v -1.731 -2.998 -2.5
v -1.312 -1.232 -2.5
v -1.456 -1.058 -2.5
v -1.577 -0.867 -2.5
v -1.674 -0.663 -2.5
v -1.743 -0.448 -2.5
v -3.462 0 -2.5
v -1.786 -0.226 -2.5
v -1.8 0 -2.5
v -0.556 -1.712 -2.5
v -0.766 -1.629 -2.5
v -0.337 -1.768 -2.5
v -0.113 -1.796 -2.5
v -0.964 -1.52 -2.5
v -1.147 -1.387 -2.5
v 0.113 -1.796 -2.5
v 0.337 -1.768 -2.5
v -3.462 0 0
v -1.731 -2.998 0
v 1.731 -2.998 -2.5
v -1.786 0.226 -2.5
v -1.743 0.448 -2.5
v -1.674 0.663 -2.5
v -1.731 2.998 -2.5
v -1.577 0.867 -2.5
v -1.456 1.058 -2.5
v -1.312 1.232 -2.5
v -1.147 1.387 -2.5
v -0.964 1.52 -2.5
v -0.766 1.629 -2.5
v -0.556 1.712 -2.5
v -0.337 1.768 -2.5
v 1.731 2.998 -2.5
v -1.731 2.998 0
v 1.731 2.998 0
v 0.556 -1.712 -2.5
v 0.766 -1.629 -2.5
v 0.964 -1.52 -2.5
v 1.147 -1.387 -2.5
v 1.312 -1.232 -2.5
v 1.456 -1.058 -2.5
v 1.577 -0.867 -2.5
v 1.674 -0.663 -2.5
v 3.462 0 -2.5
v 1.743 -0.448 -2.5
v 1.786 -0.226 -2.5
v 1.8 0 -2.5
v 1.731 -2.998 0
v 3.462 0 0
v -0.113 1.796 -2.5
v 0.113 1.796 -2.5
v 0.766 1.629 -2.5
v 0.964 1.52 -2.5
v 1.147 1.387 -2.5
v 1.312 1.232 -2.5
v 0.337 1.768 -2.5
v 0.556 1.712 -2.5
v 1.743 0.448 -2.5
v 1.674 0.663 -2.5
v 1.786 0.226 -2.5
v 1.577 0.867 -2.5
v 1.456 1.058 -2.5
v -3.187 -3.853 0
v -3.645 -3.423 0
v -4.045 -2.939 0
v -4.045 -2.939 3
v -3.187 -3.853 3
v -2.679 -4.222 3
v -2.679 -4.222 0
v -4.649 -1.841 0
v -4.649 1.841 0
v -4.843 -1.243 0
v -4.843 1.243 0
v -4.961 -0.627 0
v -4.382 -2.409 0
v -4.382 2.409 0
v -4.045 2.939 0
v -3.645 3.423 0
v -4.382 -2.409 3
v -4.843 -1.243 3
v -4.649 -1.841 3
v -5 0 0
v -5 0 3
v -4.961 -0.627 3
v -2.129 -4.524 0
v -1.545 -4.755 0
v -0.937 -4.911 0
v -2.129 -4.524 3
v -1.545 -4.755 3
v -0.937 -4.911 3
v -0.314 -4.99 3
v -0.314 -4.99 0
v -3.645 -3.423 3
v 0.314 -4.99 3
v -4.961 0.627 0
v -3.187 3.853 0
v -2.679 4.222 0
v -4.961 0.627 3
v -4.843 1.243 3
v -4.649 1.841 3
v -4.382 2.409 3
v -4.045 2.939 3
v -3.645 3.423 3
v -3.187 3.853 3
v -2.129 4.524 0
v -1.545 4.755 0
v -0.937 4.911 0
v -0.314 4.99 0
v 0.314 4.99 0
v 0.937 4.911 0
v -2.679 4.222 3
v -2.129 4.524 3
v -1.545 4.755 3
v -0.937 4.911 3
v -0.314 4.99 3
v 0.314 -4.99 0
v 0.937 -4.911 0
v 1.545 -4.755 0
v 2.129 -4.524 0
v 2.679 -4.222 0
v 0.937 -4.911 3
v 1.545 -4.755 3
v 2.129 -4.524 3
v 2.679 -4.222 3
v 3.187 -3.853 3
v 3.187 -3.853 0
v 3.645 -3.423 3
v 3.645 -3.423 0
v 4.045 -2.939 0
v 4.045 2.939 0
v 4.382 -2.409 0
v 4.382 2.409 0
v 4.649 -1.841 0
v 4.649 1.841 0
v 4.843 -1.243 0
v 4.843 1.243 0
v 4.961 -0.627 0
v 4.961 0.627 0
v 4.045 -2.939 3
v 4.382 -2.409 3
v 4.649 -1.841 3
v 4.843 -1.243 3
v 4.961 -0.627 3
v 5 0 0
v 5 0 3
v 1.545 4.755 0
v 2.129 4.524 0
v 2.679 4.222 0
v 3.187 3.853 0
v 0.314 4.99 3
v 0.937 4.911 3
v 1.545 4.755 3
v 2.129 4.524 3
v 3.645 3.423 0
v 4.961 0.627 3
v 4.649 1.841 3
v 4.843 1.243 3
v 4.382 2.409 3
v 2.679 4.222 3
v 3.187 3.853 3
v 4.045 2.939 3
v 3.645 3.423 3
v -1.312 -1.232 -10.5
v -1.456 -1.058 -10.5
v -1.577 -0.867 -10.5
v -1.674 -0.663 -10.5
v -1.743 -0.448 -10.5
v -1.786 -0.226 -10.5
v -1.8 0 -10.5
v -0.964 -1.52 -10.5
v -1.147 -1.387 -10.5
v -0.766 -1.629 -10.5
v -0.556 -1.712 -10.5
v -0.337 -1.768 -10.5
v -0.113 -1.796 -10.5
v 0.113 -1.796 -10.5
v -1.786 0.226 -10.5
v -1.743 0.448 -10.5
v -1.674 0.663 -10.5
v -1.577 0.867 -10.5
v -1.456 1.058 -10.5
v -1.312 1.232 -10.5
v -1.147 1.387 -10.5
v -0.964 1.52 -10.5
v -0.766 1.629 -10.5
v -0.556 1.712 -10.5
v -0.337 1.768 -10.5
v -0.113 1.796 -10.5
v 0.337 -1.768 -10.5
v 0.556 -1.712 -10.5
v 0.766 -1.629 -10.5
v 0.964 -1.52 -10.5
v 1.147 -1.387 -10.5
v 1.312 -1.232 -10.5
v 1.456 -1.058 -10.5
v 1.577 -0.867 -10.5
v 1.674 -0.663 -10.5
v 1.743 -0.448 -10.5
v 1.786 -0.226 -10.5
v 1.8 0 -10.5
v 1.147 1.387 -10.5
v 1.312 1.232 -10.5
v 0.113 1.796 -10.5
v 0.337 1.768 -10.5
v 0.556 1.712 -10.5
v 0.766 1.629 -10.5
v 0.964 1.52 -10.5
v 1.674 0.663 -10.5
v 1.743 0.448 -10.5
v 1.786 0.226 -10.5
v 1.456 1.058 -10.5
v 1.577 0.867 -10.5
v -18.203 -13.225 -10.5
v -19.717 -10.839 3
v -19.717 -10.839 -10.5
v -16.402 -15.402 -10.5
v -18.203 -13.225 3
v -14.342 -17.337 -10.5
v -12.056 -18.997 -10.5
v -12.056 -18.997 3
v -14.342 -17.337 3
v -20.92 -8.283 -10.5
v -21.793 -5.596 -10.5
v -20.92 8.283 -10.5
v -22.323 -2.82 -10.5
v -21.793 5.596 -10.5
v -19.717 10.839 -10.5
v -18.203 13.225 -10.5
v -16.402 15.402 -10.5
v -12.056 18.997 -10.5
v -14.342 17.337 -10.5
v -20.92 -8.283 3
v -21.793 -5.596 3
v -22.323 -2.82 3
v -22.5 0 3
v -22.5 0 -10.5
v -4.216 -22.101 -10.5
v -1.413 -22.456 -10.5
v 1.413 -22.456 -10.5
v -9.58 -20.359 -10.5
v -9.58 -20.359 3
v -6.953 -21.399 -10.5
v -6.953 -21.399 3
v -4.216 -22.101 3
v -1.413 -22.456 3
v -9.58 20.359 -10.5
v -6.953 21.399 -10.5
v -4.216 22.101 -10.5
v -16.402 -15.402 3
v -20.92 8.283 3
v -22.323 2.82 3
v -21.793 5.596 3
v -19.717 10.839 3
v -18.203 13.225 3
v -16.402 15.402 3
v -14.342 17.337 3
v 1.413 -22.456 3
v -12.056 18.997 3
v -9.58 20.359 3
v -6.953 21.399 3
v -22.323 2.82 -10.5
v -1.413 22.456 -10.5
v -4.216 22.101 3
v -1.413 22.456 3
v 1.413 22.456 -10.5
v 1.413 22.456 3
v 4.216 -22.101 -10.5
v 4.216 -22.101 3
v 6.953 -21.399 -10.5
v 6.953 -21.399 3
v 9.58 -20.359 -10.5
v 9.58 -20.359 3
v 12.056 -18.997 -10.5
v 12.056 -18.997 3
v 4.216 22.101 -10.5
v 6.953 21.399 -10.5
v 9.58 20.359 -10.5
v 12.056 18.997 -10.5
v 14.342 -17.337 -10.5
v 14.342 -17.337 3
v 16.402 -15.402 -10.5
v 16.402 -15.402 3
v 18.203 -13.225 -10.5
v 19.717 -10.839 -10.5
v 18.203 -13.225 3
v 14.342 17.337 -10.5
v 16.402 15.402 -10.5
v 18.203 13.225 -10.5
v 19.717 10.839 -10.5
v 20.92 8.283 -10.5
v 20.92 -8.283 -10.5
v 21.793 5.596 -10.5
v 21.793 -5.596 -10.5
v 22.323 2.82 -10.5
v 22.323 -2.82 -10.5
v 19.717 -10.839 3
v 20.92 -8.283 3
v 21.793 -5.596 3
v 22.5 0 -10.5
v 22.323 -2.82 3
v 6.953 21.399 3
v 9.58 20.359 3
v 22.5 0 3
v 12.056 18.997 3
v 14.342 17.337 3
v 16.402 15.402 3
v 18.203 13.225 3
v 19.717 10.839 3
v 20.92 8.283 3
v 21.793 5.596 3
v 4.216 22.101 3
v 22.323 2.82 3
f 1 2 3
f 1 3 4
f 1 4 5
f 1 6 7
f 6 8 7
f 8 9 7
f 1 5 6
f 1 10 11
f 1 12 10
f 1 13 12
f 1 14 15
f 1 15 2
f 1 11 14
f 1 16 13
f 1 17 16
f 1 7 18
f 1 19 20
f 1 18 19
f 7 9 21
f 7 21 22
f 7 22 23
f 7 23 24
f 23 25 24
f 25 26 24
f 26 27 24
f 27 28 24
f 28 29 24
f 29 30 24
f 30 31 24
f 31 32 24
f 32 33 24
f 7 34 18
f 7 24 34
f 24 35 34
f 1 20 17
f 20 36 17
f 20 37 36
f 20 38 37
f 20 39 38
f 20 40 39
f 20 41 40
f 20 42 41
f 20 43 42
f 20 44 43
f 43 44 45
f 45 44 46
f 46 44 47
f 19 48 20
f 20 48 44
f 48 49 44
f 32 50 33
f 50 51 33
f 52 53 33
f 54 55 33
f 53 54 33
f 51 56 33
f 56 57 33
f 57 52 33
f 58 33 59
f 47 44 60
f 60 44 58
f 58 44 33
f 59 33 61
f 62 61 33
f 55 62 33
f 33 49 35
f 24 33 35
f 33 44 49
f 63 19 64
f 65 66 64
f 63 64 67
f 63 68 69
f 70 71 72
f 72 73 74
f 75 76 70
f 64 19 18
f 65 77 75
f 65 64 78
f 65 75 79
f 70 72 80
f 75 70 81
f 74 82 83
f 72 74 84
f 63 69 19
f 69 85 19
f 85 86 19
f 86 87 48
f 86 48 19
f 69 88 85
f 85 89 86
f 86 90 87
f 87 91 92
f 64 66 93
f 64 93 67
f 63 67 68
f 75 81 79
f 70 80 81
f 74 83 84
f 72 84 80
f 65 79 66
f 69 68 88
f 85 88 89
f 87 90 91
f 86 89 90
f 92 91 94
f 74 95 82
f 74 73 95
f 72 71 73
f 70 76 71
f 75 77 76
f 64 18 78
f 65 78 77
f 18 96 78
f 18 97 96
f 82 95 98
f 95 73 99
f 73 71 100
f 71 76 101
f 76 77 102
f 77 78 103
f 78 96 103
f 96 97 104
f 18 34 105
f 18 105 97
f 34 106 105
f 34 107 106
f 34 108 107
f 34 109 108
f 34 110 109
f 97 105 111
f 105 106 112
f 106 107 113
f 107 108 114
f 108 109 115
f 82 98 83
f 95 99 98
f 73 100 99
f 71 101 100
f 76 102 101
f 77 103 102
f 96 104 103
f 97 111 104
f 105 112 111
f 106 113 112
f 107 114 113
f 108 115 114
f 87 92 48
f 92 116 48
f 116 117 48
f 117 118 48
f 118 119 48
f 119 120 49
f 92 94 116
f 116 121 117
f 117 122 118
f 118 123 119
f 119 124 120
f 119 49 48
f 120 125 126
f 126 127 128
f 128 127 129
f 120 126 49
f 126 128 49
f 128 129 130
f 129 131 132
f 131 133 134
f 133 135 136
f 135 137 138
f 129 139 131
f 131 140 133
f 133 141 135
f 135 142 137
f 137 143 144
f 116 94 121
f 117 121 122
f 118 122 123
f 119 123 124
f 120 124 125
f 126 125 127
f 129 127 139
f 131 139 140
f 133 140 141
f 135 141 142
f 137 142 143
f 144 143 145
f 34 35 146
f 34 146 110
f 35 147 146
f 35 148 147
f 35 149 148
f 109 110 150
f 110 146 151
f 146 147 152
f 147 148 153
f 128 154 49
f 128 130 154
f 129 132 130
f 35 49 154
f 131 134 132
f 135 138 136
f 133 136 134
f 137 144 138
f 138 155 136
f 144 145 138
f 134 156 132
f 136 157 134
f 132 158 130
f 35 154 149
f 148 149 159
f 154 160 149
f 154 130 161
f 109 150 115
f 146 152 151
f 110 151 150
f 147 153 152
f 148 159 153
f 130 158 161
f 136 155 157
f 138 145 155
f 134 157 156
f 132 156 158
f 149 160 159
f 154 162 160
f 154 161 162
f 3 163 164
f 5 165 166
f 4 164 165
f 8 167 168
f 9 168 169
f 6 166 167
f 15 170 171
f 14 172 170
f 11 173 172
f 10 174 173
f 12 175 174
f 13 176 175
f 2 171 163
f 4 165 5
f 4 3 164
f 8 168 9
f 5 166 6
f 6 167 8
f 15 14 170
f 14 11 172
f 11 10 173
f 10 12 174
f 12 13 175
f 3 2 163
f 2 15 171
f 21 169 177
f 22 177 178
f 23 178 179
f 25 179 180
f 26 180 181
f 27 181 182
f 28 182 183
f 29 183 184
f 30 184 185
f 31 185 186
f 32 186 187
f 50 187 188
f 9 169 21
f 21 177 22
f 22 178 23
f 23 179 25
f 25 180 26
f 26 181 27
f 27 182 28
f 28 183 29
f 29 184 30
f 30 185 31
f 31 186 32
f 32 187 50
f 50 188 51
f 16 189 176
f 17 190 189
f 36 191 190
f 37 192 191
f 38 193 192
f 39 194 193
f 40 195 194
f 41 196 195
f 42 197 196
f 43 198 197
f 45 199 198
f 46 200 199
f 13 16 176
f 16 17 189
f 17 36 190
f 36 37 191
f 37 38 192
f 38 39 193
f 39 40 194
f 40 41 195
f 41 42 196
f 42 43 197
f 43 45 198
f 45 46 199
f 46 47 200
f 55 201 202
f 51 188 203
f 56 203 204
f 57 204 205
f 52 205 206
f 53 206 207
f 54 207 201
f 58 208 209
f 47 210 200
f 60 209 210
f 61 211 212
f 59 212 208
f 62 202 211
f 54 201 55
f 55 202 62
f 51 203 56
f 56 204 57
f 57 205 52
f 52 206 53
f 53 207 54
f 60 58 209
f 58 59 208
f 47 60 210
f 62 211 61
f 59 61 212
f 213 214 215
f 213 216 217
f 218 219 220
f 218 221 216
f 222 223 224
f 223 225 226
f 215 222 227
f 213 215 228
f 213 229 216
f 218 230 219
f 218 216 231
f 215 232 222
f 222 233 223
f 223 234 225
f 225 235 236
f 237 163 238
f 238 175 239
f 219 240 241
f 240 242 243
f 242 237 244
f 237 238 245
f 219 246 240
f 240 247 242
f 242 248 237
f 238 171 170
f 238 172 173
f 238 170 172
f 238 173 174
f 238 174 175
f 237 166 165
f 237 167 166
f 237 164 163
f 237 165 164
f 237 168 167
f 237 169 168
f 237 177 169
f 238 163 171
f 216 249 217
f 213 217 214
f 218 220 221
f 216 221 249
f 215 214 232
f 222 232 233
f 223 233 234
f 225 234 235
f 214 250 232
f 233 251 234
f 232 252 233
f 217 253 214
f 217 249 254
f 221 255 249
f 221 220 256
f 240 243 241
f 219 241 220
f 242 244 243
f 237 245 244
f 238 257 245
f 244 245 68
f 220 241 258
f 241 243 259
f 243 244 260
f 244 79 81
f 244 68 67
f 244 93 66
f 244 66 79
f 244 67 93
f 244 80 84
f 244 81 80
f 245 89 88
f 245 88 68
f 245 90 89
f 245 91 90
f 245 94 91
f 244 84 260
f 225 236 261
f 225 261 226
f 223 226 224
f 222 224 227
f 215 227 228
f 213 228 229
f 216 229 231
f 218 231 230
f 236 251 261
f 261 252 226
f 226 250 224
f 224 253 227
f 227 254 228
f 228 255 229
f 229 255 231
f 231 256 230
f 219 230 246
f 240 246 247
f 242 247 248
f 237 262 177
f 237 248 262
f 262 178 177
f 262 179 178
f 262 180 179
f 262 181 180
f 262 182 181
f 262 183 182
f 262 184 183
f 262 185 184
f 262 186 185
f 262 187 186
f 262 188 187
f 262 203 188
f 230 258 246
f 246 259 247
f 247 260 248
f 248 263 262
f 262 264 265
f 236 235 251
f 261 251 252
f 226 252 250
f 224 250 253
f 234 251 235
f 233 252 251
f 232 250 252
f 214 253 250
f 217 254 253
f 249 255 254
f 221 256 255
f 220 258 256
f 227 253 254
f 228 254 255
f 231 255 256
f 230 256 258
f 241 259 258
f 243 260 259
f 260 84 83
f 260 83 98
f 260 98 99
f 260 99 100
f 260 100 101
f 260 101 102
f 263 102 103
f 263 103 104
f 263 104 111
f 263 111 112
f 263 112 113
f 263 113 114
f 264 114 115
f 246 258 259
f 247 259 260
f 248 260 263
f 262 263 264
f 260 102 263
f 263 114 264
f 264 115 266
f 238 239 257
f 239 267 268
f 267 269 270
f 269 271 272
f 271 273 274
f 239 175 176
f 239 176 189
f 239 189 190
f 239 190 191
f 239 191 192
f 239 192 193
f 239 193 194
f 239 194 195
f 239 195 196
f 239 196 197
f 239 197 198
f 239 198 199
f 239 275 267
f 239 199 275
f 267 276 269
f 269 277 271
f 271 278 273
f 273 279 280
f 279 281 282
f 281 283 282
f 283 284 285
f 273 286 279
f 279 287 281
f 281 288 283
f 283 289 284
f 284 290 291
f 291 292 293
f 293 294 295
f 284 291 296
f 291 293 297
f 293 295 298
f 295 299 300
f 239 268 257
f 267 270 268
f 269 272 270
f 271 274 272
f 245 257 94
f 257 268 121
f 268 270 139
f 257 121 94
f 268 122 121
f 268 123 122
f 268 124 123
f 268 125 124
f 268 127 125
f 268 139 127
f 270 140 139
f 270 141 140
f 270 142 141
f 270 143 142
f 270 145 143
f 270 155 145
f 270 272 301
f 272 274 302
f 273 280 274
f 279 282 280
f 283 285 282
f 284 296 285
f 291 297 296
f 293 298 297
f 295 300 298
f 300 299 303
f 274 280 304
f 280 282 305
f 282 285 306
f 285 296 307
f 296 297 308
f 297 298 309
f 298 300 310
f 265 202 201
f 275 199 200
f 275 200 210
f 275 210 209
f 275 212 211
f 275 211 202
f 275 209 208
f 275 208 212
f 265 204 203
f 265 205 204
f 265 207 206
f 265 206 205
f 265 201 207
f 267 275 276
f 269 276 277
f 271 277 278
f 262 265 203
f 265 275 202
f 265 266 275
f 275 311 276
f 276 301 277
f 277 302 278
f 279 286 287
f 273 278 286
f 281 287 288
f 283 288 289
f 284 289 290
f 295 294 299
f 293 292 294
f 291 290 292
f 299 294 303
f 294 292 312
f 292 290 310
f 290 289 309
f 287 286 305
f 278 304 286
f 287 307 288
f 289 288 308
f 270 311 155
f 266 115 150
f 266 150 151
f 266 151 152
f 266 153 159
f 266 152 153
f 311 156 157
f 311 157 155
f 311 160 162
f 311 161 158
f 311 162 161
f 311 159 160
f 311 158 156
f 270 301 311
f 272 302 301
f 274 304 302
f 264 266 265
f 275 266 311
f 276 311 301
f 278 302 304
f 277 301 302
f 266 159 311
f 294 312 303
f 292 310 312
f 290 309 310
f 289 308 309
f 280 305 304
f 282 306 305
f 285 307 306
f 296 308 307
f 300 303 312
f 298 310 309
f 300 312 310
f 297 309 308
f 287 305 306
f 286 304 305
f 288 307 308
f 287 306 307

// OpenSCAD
$fn = 50;

difference() {
	union() {
		translate(v = [0, 0, -10.5]) {
			cylinder(h = 13.5, r = 22.5);
		}
	}
	union() {
		translate(v = [0, 0, 0]) {
			rotate(a = [0, 0, 0]) {
				difference() {
					union() {
						translate(v = [0, 0, -2.5]) {
							linear_extrude(height = 2.5) {
								polygon(points = [[3.4619999999999997, 0.0], [1.7310000000000003, 2.9981799479017264], [-1.7309999999999992, 2.9981799479017264], [-3.4619999999999997, 4.2397272186481365e-16], [-1.7310000000000014, -2.998179947901726], [1.7309999999999977, -2.9981799479017277]]);
							}
						}
					}
					union();
				}
			}
		}
		#cylinder(h = 3, r = 5.0);
		#translate(v = [0, 0, -100.0]) {
			cylinder(h = 200, r = 1.8);
		}
	}
}
